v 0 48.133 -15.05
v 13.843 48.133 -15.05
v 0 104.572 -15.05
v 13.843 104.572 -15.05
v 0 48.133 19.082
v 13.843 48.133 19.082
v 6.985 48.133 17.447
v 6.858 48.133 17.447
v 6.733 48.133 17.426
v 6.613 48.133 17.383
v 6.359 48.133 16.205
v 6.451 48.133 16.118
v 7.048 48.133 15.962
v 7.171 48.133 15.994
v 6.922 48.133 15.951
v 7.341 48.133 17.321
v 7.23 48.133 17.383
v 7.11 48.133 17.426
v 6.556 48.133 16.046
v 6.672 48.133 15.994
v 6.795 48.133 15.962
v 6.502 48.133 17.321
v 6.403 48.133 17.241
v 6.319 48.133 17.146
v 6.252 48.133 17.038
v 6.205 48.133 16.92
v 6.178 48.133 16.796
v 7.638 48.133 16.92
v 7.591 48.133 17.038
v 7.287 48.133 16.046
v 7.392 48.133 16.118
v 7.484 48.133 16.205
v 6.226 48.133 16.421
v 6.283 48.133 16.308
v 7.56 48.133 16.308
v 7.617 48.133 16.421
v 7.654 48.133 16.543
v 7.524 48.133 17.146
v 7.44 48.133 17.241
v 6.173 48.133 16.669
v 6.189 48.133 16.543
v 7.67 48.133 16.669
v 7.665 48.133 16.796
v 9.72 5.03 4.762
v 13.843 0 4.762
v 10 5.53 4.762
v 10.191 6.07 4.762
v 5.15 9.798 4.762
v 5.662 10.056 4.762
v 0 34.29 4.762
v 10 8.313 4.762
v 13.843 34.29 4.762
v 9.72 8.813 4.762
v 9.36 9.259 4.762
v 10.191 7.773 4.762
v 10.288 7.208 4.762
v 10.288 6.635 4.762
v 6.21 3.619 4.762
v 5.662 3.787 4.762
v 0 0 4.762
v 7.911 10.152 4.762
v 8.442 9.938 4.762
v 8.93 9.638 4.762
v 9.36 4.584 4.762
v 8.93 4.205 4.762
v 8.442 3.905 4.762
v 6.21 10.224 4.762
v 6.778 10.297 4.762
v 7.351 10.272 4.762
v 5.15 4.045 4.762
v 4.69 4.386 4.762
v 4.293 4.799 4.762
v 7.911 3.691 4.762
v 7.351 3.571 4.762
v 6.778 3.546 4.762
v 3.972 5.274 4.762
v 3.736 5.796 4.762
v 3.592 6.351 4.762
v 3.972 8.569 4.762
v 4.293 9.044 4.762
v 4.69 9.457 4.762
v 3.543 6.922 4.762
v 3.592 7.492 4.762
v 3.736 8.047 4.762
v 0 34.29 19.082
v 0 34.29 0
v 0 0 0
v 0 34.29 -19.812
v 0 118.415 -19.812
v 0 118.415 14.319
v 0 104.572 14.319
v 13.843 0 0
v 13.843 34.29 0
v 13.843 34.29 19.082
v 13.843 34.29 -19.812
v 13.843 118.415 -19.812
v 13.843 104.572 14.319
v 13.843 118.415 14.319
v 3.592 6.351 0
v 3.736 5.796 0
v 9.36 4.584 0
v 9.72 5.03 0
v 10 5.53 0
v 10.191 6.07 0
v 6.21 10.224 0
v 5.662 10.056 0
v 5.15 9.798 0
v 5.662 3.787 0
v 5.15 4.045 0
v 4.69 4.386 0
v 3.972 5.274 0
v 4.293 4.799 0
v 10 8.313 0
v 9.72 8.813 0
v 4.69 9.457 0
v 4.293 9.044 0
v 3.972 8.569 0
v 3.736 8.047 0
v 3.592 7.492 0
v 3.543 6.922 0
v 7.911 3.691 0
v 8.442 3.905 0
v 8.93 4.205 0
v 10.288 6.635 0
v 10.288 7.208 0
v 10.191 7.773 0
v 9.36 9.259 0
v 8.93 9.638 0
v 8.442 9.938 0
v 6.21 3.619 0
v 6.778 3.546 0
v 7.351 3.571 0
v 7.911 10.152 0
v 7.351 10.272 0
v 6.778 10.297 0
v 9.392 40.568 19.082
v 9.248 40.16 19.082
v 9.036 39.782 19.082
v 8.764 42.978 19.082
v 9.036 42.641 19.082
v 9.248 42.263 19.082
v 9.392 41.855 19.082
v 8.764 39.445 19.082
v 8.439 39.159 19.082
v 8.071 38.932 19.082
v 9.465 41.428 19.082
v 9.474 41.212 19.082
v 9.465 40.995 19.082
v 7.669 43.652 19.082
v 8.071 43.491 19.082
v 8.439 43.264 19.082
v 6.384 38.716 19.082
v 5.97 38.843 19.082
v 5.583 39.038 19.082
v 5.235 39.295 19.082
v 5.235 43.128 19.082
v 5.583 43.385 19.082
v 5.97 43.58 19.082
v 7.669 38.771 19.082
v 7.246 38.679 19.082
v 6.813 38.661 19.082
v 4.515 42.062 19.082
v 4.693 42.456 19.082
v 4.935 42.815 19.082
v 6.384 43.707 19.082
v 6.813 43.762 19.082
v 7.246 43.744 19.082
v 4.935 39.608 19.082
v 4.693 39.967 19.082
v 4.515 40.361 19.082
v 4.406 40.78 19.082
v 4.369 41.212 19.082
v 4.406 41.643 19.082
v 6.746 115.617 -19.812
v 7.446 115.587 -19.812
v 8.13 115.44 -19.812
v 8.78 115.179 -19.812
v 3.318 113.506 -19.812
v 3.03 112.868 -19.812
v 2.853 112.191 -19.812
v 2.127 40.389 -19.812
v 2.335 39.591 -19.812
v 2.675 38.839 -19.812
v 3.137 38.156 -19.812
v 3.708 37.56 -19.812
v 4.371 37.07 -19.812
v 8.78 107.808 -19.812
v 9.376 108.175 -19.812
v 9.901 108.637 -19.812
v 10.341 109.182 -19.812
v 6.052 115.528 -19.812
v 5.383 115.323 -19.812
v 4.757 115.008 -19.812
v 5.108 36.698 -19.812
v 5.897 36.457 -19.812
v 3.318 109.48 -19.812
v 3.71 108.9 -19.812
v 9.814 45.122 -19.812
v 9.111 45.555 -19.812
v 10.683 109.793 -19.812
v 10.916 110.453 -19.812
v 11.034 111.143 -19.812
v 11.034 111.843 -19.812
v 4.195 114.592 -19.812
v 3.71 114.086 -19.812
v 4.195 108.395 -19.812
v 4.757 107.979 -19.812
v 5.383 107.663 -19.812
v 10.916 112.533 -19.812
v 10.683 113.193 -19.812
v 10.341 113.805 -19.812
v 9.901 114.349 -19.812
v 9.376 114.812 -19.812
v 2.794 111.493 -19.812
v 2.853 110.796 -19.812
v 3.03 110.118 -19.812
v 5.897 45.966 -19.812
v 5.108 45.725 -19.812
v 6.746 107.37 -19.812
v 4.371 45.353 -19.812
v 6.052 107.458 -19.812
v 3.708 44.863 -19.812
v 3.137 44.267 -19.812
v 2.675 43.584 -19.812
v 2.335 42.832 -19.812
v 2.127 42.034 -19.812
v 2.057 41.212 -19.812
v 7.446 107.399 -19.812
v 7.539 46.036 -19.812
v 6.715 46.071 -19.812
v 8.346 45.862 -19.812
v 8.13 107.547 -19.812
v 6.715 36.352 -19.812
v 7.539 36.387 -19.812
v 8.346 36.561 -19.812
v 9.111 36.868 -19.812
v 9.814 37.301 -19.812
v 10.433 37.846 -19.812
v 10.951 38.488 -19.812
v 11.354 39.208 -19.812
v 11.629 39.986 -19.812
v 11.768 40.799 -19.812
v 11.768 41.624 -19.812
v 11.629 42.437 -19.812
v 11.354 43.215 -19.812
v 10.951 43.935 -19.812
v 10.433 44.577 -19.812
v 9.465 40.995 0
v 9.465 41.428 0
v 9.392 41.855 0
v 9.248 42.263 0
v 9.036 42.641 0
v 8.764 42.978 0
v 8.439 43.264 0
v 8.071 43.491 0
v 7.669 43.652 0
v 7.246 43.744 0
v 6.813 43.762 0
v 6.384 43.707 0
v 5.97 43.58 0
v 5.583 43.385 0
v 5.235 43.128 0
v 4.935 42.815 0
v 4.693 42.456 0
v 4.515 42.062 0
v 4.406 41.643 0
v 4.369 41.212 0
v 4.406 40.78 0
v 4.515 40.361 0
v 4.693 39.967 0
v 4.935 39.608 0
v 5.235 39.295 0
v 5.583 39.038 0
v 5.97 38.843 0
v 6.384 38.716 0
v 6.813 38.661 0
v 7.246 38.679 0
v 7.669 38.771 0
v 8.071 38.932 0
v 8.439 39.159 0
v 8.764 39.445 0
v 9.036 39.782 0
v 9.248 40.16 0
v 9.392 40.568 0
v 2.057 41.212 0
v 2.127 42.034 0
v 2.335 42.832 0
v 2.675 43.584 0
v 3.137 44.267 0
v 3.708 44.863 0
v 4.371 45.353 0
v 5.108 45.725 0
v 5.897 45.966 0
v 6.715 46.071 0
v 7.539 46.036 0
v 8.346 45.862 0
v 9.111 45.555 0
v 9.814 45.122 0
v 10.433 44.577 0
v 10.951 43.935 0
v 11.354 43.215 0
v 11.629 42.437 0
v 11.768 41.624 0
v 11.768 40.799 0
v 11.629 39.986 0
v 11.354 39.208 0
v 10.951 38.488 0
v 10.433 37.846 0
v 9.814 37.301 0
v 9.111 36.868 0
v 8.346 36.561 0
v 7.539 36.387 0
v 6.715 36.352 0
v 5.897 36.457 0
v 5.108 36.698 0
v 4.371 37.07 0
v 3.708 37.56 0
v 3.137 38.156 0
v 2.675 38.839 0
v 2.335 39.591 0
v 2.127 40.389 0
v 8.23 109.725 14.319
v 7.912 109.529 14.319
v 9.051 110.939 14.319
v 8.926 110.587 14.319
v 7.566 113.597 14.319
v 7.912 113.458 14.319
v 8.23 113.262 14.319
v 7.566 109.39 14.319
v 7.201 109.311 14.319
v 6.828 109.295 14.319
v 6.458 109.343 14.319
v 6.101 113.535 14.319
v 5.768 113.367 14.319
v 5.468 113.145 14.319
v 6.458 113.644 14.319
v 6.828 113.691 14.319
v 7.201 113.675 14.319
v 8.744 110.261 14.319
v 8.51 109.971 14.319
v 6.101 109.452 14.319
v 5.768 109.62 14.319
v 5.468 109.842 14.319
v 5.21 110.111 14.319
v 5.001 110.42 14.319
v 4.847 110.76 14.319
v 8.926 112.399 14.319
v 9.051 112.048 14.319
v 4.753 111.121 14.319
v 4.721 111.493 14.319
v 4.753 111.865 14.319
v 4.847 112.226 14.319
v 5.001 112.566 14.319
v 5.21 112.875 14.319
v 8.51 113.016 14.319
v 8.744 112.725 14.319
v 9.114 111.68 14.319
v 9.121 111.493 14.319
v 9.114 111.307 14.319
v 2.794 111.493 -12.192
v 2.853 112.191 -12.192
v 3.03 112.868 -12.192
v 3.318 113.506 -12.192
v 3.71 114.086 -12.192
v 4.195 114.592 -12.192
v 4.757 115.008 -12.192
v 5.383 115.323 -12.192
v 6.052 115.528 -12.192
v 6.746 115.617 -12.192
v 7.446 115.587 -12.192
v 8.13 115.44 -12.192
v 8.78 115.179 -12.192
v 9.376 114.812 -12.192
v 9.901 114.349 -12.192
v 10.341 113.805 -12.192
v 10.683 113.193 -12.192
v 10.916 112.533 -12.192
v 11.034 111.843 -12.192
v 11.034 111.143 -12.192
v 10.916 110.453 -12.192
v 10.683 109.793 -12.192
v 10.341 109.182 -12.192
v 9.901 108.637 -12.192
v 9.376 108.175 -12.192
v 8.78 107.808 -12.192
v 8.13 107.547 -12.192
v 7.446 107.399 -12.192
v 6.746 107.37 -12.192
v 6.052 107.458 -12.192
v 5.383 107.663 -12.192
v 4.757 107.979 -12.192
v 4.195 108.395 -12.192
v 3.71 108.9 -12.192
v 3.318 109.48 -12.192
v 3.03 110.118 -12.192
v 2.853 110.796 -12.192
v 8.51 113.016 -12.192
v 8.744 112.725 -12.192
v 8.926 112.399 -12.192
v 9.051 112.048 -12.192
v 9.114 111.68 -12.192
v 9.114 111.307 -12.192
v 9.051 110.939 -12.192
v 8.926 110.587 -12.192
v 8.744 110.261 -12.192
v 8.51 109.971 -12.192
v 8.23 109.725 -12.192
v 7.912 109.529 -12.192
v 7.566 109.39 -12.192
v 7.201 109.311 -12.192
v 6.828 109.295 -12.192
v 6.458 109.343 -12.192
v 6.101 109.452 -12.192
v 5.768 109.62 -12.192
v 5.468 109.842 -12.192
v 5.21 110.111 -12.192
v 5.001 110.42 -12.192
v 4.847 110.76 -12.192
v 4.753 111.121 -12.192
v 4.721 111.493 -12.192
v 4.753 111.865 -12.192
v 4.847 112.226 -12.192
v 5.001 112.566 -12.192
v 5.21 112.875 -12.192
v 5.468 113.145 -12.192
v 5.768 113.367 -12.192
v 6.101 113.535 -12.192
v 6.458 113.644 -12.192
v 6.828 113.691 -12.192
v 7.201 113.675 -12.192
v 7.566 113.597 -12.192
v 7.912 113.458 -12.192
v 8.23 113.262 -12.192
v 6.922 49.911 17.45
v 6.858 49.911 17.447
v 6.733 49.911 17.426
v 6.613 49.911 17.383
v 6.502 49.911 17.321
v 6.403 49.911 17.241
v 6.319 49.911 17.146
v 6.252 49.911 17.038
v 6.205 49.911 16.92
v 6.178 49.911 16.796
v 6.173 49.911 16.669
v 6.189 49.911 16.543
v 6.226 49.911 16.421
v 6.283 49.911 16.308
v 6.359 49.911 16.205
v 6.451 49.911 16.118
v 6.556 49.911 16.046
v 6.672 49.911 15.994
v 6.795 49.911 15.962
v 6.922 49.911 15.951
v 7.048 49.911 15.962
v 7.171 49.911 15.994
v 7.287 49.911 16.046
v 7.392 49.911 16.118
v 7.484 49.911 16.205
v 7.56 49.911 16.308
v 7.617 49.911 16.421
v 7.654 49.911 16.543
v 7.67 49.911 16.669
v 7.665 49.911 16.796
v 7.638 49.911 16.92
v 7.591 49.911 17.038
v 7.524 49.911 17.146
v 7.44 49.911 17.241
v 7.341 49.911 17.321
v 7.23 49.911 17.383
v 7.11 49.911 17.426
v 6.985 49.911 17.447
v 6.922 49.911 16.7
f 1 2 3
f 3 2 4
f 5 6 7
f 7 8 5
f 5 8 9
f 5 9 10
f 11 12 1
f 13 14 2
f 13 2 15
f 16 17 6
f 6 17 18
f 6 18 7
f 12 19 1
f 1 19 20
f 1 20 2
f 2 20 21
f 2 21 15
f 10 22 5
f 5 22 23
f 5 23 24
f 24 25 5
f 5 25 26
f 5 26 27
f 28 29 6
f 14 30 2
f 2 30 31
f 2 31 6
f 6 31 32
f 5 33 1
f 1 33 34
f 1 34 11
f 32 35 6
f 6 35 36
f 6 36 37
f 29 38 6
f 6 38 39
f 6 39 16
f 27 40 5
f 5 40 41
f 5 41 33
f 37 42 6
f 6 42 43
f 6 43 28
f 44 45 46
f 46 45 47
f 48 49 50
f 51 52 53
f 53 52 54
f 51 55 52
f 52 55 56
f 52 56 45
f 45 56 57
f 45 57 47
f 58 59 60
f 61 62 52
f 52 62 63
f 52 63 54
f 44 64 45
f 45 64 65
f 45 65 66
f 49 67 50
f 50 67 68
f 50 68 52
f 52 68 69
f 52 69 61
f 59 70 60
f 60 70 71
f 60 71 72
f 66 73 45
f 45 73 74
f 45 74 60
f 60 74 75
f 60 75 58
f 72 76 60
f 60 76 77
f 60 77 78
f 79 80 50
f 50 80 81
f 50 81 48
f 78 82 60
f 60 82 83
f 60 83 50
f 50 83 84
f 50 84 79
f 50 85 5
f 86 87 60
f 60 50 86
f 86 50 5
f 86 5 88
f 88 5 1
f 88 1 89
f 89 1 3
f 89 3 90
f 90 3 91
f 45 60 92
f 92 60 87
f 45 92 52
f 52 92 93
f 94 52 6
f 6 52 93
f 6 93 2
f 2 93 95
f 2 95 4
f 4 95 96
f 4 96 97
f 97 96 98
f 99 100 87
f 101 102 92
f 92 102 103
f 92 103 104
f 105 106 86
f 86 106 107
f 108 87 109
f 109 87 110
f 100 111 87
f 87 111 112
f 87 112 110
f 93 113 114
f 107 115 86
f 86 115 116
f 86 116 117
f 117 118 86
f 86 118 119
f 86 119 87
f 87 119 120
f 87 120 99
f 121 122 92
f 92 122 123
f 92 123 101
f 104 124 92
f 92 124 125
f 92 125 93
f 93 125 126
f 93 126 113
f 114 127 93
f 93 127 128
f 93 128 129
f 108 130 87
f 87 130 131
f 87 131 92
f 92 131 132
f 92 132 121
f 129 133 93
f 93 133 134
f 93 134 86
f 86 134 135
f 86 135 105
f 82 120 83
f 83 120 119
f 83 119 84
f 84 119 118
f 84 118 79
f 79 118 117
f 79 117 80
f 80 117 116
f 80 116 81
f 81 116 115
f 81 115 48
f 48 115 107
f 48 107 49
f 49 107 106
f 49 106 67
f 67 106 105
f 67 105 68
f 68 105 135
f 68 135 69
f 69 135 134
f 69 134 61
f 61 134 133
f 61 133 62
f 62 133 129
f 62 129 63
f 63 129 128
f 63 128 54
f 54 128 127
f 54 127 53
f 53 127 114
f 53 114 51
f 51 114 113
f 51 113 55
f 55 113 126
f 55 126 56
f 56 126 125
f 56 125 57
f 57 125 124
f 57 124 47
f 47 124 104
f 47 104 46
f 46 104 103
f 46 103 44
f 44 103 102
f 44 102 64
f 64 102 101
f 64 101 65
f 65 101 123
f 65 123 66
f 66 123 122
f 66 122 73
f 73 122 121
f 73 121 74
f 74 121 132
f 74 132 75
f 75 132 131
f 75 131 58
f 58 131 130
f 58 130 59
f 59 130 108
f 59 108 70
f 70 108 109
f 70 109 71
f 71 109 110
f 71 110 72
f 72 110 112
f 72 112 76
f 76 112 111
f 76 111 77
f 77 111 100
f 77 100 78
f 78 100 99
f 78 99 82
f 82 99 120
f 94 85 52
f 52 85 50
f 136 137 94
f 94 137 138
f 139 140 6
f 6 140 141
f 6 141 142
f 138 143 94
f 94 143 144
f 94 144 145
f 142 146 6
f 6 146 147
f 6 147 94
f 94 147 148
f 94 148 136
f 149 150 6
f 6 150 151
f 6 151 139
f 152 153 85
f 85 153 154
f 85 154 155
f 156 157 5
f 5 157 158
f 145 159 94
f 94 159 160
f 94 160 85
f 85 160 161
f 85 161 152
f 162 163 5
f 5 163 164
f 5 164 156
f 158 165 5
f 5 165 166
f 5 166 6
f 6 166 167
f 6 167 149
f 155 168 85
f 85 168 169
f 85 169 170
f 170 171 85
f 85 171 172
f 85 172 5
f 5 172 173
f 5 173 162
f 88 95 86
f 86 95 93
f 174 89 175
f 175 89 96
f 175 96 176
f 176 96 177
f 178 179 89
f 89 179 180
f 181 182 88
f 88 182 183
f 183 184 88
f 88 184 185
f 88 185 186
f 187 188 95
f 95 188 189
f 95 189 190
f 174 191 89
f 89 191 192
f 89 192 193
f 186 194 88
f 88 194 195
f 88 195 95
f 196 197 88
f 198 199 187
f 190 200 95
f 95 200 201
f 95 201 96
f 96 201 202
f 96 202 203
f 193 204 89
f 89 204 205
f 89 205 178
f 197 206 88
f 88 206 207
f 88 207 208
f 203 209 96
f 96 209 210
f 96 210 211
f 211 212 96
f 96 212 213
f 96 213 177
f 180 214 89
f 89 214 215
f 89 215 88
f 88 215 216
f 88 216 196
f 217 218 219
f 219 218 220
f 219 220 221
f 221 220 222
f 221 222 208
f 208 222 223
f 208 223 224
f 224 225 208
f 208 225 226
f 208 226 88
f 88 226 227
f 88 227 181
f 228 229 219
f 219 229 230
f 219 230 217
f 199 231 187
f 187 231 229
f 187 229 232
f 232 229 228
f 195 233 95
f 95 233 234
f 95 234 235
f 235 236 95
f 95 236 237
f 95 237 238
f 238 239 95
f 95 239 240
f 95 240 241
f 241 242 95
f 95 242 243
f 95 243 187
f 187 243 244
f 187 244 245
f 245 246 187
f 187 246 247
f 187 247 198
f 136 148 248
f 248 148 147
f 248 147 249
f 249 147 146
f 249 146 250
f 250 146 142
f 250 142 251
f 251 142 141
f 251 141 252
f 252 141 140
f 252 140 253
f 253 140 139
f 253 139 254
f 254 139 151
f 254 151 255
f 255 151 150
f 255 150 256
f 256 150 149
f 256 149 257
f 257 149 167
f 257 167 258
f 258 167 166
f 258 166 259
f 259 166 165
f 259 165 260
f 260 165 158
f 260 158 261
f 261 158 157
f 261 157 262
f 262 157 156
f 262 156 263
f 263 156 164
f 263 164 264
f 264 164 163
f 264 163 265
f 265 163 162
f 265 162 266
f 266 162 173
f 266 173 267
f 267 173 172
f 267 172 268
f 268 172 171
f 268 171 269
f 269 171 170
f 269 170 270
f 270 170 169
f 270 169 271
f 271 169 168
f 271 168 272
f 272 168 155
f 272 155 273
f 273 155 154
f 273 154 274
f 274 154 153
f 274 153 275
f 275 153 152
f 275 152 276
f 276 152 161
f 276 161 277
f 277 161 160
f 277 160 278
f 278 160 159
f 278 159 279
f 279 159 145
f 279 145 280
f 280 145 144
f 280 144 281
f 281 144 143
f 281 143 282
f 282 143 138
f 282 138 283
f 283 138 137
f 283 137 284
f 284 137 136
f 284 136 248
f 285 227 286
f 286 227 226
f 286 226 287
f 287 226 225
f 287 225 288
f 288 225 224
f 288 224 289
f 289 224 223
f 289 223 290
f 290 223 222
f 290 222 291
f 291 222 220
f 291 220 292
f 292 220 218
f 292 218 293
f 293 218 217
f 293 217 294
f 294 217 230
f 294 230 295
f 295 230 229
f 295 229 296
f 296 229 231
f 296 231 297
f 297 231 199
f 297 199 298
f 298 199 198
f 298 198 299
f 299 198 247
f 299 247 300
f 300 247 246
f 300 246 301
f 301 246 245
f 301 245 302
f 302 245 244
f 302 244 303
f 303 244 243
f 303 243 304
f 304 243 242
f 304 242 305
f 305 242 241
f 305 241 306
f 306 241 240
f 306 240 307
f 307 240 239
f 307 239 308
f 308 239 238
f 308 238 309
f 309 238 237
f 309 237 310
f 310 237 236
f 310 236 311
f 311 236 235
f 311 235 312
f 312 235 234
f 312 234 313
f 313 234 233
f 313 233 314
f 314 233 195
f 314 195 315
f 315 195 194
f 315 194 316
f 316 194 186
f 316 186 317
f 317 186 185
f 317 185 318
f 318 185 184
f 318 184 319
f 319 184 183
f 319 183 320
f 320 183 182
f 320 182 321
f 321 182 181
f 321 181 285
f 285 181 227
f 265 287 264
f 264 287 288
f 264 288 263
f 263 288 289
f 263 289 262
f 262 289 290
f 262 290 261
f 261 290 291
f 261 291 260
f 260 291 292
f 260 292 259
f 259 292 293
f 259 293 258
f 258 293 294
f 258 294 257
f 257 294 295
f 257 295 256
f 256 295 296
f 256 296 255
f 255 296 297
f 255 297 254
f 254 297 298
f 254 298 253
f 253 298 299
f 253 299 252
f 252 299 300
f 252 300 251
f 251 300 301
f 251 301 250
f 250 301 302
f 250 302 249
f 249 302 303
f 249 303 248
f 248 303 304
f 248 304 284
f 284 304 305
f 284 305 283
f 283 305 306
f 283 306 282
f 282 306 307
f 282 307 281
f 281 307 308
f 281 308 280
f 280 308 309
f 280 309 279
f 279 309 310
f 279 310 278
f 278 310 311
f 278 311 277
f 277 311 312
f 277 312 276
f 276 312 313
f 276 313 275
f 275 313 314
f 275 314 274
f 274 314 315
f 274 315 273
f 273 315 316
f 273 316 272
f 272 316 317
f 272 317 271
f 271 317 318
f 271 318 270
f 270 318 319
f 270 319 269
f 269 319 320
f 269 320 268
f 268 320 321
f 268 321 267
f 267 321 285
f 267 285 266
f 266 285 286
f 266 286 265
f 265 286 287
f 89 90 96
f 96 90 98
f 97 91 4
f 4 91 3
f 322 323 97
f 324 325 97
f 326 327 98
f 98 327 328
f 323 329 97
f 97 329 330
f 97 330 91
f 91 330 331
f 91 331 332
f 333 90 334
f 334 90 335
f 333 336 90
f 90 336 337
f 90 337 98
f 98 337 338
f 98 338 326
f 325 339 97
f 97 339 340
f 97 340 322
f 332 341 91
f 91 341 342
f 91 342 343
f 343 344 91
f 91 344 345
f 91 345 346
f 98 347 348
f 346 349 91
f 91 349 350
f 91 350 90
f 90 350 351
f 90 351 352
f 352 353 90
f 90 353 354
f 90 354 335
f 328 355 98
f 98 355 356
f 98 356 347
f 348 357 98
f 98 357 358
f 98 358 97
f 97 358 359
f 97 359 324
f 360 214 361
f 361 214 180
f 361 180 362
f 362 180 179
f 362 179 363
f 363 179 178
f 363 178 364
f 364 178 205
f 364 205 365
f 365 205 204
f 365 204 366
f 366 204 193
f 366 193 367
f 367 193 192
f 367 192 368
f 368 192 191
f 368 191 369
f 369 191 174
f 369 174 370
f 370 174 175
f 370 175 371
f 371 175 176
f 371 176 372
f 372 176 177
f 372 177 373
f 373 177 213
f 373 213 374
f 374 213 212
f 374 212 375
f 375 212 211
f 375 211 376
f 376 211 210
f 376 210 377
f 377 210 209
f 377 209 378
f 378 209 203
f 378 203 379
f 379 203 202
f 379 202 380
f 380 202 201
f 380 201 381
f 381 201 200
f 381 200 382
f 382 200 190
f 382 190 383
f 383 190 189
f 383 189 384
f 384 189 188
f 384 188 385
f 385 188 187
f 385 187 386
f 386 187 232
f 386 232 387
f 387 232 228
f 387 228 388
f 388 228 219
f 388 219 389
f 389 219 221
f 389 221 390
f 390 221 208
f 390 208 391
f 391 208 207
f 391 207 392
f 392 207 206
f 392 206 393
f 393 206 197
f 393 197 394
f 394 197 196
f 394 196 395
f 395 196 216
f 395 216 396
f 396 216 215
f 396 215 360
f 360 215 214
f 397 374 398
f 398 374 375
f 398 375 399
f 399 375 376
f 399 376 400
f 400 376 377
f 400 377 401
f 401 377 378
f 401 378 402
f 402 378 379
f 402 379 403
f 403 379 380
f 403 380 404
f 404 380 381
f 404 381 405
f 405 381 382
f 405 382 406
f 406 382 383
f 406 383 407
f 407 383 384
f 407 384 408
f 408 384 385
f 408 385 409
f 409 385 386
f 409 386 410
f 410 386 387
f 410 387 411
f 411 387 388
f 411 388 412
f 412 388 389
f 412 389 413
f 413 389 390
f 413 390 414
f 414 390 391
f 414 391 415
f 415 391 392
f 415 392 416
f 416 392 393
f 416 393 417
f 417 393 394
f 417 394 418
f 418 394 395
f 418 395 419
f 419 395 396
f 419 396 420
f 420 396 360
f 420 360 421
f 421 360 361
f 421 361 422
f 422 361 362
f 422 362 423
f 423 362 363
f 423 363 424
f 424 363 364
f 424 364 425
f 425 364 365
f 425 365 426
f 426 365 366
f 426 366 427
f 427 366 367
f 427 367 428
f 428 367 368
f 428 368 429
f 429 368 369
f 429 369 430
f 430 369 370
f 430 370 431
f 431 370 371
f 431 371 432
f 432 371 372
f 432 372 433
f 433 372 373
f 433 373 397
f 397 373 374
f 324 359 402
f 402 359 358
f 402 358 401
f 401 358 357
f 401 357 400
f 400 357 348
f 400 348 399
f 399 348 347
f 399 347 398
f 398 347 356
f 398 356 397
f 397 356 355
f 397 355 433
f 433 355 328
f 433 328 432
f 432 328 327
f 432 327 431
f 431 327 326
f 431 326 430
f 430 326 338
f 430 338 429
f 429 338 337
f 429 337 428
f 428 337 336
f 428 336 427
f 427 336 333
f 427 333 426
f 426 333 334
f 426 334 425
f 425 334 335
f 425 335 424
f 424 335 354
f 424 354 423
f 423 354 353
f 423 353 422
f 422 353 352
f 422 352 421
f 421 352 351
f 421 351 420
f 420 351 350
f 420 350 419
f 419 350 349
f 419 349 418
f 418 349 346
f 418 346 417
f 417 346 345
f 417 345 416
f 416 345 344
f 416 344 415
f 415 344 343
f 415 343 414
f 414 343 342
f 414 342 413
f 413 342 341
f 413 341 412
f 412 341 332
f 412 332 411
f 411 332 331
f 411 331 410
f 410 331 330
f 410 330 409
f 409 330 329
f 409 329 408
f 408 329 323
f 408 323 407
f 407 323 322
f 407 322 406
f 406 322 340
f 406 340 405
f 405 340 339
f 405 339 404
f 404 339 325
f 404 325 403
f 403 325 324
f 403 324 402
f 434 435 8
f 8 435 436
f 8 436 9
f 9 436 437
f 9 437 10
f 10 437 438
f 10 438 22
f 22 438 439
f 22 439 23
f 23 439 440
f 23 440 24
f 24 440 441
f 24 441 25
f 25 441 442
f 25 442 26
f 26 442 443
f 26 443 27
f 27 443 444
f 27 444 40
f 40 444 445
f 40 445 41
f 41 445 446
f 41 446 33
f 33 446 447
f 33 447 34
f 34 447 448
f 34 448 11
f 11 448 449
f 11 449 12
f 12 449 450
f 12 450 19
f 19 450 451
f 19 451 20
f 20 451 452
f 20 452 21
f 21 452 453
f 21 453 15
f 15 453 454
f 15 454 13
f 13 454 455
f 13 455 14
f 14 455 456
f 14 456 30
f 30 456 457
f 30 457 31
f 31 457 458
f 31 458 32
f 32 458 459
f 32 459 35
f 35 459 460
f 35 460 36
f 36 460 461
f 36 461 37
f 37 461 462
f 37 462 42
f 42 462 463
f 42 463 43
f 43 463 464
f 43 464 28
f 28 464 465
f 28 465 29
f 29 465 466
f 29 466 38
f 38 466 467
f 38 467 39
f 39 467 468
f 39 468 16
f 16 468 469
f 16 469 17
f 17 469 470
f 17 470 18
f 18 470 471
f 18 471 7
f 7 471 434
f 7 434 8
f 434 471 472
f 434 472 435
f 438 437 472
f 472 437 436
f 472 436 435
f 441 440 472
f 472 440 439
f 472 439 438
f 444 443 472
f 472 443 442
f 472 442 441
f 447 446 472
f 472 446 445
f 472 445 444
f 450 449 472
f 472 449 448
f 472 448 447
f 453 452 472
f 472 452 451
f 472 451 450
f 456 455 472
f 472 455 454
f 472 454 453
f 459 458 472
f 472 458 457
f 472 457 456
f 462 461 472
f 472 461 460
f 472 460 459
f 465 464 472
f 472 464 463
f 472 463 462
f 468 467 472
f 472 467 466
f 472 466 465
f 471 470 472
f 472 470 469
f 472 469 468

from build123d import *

# Parameters (mm, degrees)
SKETCH1_W           = 13.843
SKETCH1_H           = 48.133
BOSS_EXTRUDE1_DEPTH = 4.7625
SKETCH2_R           = 3.3782
CUT_EXTRUDE1_DEPTH  = 5.7625
SKETCH3_W           = 13.843
SKETCH3_H           = 13.843
BOSS_EXTRUDE2_DEPTH = 14.31925
SKETCH6_W           = 13.843
SKETCH6_H           = 13.843
BOSS_EXTRUDE3_DEPTH = 19.812
SKETCH4_R           = 2.5527
CUT_EXTRUDE2_DEPTH  = 27.01925
SKETCH7_R           = 4.8641
CUT_EXTRUDE3_DEPTH  = 19.812
SKETCH8_W           = 13.843
SKETCH8_H           = 4.7625
BOSS_EXTRUDE4_DEPTH = 70.2818
SKETCH9_W           = 13.843
SKETCH9_H           = 13.843
BOSS_EXTRUDE5_DEPTH = 29.36875
SKETCH10_R          = 4.1275
CUT_EXTRUDE4_DEPTH  = 7.62
SKETCH11_R          = 2.2
CUT_EXTRUDE5_DEPTH  = 32.27375
SKETCH12_R          = 0.7493
BOSS_EXTRUDE6_DEPTH = 1.778


with BuildPart() as part:
    # Sketch1 → Boss-Extrude1 (new body)
    with BuildSketch(Plane.XY):
        with Locations((6.9215, 24.0665)):
            Rectangle(SKETCH1_W, SKETCH1_H)
    extrude(amount=BOSS_EXTRUDE1_DEPTH)

    # Sketch2 → Cut-Extrude1 (cut, through all)
    with BuildSketch(Plane(origin=(0, 0, 0), x_dir=(-1, 0, 0), z_dir=(0, 0, -1))):
        with Locations((-6.9215, 6.9215)):
            Circle(SKETCH2_R)
    extrude(amount=-CUT_EXTRUDE1_DEPTH, mode=Mode.SUBTRACT)

    # Sketch3 → Boss-Extrude2 (add)
    with BuildSketch(Plane.XY.offset(4.7625)):
        with Locations((6.9215, 41.2115)):
            Rectangle(SKETCH3_W, SKETCH3_H)
    extrude(amount=BOSS_EXTRUDE2_DEPTH)

    # Sketch6 → Boss-Extrude3 (add)
    with BuildSketch(Plane(origin=(0, 0, 0), x_dir=(-1, 0, 0), z_dir=(0, 0, -1))):
        with Locations((-6.9215, 41.2115)):
            Rectangle(SKETCH6_W, SKETCH6_H)
    extrude(amount=BOSS_EXTRUDE3_DEPTH)

    # Sketch4 → Cut-Extrude2 (cut)
    with BuildSketch(Plane(origin=(0, 0, 0), x_dir=(-1, 0, 0), z_dir=(0, 0, -1))):
        with Locations((-6.9215, 41.2115)):
            Circle(SKETCH4_R)
    extrude(amount=-CUT_EXTRUDE2_DEPTH, mode=Mode.SUBTRACT)

    # Sketch7 → Cut-Extrude3 (cut)
    with BuildSketch(Plane(origin=(0, 0, -19.812), x_dir=(-1, 0, 0), z_dir=(0, 0, -1))):
        with Locations((-6.9215, 41.2115)):
            Circle(SKETCH7_R)
    extrude(amount=-CUT_EXTRUDE3_DEPTH, mode=Mode.SUBTRACT)

    # Sketch8 → Boss-Extrude4 (add)
    with BuildSketch(Plane(origin=(0, 48.133, 0), x_dir=(1, 0, 0), z_dir=(0, 1, 0))):
        with Locations((6.9215, 17.43075)):
            Rectangle(SKETCH8_W, SKETCH8_H)
    extrude(amount=BOSS_EXTRUDE4_DEPTH)

    # Sketch9 → Boss-Extrude5 (add)
    with BuildSketch(Plane.XY.offset(-15.0495)):
        with Locations((6.9215, 111.4933)):
            Rectangle(SKETCH9_W, SKETCH9_H)
    extrude(amount=BOSS_EXTRUDE5_DEPTH)

    # Sketch10 → Cut-Extrude4 (cut)
    with BuildSketch(Plane(origin=(0, 0, -19.812), x_dir=(-1, 0, 0), z_dir=(0, 0, -1))):
        with Locations((-6.9215, 111.4933)):
            Circle(SKETCH10_R)
    extrude(amount=-CUT_EXTRUDE4_DEPTH, mode=Mode.SUBTRACT)

    # Sketch11 → Cut-Extrude5 (cut, through all)
    with BuildSketch(Plane(origin=(0, 0, -12.192), x_dir=(-1, 0, 0), z_dir=(0, 0, -1))):
        with Locations((-6.9215, 111.4933)):
            Circle(SKETCH11_R)
    extrude(amount=-CUT_EXTRUDE5_DEPTH, mode=Mode.SUBTRACT)

    # Sketch12 → Boss-Extrude6 (add)
    with BuildSketch(Plane(origin=(0, 48.133, 0), x_dir=(1, 0, 0), z_dir=(0, 1, 0))):
        with Locations((6.9215, -16.7005)):
            Circle(SKETCH12_R)
    extrude(amount=BOSS_EXTRUDE6_DEPTH)


solid = part.part
